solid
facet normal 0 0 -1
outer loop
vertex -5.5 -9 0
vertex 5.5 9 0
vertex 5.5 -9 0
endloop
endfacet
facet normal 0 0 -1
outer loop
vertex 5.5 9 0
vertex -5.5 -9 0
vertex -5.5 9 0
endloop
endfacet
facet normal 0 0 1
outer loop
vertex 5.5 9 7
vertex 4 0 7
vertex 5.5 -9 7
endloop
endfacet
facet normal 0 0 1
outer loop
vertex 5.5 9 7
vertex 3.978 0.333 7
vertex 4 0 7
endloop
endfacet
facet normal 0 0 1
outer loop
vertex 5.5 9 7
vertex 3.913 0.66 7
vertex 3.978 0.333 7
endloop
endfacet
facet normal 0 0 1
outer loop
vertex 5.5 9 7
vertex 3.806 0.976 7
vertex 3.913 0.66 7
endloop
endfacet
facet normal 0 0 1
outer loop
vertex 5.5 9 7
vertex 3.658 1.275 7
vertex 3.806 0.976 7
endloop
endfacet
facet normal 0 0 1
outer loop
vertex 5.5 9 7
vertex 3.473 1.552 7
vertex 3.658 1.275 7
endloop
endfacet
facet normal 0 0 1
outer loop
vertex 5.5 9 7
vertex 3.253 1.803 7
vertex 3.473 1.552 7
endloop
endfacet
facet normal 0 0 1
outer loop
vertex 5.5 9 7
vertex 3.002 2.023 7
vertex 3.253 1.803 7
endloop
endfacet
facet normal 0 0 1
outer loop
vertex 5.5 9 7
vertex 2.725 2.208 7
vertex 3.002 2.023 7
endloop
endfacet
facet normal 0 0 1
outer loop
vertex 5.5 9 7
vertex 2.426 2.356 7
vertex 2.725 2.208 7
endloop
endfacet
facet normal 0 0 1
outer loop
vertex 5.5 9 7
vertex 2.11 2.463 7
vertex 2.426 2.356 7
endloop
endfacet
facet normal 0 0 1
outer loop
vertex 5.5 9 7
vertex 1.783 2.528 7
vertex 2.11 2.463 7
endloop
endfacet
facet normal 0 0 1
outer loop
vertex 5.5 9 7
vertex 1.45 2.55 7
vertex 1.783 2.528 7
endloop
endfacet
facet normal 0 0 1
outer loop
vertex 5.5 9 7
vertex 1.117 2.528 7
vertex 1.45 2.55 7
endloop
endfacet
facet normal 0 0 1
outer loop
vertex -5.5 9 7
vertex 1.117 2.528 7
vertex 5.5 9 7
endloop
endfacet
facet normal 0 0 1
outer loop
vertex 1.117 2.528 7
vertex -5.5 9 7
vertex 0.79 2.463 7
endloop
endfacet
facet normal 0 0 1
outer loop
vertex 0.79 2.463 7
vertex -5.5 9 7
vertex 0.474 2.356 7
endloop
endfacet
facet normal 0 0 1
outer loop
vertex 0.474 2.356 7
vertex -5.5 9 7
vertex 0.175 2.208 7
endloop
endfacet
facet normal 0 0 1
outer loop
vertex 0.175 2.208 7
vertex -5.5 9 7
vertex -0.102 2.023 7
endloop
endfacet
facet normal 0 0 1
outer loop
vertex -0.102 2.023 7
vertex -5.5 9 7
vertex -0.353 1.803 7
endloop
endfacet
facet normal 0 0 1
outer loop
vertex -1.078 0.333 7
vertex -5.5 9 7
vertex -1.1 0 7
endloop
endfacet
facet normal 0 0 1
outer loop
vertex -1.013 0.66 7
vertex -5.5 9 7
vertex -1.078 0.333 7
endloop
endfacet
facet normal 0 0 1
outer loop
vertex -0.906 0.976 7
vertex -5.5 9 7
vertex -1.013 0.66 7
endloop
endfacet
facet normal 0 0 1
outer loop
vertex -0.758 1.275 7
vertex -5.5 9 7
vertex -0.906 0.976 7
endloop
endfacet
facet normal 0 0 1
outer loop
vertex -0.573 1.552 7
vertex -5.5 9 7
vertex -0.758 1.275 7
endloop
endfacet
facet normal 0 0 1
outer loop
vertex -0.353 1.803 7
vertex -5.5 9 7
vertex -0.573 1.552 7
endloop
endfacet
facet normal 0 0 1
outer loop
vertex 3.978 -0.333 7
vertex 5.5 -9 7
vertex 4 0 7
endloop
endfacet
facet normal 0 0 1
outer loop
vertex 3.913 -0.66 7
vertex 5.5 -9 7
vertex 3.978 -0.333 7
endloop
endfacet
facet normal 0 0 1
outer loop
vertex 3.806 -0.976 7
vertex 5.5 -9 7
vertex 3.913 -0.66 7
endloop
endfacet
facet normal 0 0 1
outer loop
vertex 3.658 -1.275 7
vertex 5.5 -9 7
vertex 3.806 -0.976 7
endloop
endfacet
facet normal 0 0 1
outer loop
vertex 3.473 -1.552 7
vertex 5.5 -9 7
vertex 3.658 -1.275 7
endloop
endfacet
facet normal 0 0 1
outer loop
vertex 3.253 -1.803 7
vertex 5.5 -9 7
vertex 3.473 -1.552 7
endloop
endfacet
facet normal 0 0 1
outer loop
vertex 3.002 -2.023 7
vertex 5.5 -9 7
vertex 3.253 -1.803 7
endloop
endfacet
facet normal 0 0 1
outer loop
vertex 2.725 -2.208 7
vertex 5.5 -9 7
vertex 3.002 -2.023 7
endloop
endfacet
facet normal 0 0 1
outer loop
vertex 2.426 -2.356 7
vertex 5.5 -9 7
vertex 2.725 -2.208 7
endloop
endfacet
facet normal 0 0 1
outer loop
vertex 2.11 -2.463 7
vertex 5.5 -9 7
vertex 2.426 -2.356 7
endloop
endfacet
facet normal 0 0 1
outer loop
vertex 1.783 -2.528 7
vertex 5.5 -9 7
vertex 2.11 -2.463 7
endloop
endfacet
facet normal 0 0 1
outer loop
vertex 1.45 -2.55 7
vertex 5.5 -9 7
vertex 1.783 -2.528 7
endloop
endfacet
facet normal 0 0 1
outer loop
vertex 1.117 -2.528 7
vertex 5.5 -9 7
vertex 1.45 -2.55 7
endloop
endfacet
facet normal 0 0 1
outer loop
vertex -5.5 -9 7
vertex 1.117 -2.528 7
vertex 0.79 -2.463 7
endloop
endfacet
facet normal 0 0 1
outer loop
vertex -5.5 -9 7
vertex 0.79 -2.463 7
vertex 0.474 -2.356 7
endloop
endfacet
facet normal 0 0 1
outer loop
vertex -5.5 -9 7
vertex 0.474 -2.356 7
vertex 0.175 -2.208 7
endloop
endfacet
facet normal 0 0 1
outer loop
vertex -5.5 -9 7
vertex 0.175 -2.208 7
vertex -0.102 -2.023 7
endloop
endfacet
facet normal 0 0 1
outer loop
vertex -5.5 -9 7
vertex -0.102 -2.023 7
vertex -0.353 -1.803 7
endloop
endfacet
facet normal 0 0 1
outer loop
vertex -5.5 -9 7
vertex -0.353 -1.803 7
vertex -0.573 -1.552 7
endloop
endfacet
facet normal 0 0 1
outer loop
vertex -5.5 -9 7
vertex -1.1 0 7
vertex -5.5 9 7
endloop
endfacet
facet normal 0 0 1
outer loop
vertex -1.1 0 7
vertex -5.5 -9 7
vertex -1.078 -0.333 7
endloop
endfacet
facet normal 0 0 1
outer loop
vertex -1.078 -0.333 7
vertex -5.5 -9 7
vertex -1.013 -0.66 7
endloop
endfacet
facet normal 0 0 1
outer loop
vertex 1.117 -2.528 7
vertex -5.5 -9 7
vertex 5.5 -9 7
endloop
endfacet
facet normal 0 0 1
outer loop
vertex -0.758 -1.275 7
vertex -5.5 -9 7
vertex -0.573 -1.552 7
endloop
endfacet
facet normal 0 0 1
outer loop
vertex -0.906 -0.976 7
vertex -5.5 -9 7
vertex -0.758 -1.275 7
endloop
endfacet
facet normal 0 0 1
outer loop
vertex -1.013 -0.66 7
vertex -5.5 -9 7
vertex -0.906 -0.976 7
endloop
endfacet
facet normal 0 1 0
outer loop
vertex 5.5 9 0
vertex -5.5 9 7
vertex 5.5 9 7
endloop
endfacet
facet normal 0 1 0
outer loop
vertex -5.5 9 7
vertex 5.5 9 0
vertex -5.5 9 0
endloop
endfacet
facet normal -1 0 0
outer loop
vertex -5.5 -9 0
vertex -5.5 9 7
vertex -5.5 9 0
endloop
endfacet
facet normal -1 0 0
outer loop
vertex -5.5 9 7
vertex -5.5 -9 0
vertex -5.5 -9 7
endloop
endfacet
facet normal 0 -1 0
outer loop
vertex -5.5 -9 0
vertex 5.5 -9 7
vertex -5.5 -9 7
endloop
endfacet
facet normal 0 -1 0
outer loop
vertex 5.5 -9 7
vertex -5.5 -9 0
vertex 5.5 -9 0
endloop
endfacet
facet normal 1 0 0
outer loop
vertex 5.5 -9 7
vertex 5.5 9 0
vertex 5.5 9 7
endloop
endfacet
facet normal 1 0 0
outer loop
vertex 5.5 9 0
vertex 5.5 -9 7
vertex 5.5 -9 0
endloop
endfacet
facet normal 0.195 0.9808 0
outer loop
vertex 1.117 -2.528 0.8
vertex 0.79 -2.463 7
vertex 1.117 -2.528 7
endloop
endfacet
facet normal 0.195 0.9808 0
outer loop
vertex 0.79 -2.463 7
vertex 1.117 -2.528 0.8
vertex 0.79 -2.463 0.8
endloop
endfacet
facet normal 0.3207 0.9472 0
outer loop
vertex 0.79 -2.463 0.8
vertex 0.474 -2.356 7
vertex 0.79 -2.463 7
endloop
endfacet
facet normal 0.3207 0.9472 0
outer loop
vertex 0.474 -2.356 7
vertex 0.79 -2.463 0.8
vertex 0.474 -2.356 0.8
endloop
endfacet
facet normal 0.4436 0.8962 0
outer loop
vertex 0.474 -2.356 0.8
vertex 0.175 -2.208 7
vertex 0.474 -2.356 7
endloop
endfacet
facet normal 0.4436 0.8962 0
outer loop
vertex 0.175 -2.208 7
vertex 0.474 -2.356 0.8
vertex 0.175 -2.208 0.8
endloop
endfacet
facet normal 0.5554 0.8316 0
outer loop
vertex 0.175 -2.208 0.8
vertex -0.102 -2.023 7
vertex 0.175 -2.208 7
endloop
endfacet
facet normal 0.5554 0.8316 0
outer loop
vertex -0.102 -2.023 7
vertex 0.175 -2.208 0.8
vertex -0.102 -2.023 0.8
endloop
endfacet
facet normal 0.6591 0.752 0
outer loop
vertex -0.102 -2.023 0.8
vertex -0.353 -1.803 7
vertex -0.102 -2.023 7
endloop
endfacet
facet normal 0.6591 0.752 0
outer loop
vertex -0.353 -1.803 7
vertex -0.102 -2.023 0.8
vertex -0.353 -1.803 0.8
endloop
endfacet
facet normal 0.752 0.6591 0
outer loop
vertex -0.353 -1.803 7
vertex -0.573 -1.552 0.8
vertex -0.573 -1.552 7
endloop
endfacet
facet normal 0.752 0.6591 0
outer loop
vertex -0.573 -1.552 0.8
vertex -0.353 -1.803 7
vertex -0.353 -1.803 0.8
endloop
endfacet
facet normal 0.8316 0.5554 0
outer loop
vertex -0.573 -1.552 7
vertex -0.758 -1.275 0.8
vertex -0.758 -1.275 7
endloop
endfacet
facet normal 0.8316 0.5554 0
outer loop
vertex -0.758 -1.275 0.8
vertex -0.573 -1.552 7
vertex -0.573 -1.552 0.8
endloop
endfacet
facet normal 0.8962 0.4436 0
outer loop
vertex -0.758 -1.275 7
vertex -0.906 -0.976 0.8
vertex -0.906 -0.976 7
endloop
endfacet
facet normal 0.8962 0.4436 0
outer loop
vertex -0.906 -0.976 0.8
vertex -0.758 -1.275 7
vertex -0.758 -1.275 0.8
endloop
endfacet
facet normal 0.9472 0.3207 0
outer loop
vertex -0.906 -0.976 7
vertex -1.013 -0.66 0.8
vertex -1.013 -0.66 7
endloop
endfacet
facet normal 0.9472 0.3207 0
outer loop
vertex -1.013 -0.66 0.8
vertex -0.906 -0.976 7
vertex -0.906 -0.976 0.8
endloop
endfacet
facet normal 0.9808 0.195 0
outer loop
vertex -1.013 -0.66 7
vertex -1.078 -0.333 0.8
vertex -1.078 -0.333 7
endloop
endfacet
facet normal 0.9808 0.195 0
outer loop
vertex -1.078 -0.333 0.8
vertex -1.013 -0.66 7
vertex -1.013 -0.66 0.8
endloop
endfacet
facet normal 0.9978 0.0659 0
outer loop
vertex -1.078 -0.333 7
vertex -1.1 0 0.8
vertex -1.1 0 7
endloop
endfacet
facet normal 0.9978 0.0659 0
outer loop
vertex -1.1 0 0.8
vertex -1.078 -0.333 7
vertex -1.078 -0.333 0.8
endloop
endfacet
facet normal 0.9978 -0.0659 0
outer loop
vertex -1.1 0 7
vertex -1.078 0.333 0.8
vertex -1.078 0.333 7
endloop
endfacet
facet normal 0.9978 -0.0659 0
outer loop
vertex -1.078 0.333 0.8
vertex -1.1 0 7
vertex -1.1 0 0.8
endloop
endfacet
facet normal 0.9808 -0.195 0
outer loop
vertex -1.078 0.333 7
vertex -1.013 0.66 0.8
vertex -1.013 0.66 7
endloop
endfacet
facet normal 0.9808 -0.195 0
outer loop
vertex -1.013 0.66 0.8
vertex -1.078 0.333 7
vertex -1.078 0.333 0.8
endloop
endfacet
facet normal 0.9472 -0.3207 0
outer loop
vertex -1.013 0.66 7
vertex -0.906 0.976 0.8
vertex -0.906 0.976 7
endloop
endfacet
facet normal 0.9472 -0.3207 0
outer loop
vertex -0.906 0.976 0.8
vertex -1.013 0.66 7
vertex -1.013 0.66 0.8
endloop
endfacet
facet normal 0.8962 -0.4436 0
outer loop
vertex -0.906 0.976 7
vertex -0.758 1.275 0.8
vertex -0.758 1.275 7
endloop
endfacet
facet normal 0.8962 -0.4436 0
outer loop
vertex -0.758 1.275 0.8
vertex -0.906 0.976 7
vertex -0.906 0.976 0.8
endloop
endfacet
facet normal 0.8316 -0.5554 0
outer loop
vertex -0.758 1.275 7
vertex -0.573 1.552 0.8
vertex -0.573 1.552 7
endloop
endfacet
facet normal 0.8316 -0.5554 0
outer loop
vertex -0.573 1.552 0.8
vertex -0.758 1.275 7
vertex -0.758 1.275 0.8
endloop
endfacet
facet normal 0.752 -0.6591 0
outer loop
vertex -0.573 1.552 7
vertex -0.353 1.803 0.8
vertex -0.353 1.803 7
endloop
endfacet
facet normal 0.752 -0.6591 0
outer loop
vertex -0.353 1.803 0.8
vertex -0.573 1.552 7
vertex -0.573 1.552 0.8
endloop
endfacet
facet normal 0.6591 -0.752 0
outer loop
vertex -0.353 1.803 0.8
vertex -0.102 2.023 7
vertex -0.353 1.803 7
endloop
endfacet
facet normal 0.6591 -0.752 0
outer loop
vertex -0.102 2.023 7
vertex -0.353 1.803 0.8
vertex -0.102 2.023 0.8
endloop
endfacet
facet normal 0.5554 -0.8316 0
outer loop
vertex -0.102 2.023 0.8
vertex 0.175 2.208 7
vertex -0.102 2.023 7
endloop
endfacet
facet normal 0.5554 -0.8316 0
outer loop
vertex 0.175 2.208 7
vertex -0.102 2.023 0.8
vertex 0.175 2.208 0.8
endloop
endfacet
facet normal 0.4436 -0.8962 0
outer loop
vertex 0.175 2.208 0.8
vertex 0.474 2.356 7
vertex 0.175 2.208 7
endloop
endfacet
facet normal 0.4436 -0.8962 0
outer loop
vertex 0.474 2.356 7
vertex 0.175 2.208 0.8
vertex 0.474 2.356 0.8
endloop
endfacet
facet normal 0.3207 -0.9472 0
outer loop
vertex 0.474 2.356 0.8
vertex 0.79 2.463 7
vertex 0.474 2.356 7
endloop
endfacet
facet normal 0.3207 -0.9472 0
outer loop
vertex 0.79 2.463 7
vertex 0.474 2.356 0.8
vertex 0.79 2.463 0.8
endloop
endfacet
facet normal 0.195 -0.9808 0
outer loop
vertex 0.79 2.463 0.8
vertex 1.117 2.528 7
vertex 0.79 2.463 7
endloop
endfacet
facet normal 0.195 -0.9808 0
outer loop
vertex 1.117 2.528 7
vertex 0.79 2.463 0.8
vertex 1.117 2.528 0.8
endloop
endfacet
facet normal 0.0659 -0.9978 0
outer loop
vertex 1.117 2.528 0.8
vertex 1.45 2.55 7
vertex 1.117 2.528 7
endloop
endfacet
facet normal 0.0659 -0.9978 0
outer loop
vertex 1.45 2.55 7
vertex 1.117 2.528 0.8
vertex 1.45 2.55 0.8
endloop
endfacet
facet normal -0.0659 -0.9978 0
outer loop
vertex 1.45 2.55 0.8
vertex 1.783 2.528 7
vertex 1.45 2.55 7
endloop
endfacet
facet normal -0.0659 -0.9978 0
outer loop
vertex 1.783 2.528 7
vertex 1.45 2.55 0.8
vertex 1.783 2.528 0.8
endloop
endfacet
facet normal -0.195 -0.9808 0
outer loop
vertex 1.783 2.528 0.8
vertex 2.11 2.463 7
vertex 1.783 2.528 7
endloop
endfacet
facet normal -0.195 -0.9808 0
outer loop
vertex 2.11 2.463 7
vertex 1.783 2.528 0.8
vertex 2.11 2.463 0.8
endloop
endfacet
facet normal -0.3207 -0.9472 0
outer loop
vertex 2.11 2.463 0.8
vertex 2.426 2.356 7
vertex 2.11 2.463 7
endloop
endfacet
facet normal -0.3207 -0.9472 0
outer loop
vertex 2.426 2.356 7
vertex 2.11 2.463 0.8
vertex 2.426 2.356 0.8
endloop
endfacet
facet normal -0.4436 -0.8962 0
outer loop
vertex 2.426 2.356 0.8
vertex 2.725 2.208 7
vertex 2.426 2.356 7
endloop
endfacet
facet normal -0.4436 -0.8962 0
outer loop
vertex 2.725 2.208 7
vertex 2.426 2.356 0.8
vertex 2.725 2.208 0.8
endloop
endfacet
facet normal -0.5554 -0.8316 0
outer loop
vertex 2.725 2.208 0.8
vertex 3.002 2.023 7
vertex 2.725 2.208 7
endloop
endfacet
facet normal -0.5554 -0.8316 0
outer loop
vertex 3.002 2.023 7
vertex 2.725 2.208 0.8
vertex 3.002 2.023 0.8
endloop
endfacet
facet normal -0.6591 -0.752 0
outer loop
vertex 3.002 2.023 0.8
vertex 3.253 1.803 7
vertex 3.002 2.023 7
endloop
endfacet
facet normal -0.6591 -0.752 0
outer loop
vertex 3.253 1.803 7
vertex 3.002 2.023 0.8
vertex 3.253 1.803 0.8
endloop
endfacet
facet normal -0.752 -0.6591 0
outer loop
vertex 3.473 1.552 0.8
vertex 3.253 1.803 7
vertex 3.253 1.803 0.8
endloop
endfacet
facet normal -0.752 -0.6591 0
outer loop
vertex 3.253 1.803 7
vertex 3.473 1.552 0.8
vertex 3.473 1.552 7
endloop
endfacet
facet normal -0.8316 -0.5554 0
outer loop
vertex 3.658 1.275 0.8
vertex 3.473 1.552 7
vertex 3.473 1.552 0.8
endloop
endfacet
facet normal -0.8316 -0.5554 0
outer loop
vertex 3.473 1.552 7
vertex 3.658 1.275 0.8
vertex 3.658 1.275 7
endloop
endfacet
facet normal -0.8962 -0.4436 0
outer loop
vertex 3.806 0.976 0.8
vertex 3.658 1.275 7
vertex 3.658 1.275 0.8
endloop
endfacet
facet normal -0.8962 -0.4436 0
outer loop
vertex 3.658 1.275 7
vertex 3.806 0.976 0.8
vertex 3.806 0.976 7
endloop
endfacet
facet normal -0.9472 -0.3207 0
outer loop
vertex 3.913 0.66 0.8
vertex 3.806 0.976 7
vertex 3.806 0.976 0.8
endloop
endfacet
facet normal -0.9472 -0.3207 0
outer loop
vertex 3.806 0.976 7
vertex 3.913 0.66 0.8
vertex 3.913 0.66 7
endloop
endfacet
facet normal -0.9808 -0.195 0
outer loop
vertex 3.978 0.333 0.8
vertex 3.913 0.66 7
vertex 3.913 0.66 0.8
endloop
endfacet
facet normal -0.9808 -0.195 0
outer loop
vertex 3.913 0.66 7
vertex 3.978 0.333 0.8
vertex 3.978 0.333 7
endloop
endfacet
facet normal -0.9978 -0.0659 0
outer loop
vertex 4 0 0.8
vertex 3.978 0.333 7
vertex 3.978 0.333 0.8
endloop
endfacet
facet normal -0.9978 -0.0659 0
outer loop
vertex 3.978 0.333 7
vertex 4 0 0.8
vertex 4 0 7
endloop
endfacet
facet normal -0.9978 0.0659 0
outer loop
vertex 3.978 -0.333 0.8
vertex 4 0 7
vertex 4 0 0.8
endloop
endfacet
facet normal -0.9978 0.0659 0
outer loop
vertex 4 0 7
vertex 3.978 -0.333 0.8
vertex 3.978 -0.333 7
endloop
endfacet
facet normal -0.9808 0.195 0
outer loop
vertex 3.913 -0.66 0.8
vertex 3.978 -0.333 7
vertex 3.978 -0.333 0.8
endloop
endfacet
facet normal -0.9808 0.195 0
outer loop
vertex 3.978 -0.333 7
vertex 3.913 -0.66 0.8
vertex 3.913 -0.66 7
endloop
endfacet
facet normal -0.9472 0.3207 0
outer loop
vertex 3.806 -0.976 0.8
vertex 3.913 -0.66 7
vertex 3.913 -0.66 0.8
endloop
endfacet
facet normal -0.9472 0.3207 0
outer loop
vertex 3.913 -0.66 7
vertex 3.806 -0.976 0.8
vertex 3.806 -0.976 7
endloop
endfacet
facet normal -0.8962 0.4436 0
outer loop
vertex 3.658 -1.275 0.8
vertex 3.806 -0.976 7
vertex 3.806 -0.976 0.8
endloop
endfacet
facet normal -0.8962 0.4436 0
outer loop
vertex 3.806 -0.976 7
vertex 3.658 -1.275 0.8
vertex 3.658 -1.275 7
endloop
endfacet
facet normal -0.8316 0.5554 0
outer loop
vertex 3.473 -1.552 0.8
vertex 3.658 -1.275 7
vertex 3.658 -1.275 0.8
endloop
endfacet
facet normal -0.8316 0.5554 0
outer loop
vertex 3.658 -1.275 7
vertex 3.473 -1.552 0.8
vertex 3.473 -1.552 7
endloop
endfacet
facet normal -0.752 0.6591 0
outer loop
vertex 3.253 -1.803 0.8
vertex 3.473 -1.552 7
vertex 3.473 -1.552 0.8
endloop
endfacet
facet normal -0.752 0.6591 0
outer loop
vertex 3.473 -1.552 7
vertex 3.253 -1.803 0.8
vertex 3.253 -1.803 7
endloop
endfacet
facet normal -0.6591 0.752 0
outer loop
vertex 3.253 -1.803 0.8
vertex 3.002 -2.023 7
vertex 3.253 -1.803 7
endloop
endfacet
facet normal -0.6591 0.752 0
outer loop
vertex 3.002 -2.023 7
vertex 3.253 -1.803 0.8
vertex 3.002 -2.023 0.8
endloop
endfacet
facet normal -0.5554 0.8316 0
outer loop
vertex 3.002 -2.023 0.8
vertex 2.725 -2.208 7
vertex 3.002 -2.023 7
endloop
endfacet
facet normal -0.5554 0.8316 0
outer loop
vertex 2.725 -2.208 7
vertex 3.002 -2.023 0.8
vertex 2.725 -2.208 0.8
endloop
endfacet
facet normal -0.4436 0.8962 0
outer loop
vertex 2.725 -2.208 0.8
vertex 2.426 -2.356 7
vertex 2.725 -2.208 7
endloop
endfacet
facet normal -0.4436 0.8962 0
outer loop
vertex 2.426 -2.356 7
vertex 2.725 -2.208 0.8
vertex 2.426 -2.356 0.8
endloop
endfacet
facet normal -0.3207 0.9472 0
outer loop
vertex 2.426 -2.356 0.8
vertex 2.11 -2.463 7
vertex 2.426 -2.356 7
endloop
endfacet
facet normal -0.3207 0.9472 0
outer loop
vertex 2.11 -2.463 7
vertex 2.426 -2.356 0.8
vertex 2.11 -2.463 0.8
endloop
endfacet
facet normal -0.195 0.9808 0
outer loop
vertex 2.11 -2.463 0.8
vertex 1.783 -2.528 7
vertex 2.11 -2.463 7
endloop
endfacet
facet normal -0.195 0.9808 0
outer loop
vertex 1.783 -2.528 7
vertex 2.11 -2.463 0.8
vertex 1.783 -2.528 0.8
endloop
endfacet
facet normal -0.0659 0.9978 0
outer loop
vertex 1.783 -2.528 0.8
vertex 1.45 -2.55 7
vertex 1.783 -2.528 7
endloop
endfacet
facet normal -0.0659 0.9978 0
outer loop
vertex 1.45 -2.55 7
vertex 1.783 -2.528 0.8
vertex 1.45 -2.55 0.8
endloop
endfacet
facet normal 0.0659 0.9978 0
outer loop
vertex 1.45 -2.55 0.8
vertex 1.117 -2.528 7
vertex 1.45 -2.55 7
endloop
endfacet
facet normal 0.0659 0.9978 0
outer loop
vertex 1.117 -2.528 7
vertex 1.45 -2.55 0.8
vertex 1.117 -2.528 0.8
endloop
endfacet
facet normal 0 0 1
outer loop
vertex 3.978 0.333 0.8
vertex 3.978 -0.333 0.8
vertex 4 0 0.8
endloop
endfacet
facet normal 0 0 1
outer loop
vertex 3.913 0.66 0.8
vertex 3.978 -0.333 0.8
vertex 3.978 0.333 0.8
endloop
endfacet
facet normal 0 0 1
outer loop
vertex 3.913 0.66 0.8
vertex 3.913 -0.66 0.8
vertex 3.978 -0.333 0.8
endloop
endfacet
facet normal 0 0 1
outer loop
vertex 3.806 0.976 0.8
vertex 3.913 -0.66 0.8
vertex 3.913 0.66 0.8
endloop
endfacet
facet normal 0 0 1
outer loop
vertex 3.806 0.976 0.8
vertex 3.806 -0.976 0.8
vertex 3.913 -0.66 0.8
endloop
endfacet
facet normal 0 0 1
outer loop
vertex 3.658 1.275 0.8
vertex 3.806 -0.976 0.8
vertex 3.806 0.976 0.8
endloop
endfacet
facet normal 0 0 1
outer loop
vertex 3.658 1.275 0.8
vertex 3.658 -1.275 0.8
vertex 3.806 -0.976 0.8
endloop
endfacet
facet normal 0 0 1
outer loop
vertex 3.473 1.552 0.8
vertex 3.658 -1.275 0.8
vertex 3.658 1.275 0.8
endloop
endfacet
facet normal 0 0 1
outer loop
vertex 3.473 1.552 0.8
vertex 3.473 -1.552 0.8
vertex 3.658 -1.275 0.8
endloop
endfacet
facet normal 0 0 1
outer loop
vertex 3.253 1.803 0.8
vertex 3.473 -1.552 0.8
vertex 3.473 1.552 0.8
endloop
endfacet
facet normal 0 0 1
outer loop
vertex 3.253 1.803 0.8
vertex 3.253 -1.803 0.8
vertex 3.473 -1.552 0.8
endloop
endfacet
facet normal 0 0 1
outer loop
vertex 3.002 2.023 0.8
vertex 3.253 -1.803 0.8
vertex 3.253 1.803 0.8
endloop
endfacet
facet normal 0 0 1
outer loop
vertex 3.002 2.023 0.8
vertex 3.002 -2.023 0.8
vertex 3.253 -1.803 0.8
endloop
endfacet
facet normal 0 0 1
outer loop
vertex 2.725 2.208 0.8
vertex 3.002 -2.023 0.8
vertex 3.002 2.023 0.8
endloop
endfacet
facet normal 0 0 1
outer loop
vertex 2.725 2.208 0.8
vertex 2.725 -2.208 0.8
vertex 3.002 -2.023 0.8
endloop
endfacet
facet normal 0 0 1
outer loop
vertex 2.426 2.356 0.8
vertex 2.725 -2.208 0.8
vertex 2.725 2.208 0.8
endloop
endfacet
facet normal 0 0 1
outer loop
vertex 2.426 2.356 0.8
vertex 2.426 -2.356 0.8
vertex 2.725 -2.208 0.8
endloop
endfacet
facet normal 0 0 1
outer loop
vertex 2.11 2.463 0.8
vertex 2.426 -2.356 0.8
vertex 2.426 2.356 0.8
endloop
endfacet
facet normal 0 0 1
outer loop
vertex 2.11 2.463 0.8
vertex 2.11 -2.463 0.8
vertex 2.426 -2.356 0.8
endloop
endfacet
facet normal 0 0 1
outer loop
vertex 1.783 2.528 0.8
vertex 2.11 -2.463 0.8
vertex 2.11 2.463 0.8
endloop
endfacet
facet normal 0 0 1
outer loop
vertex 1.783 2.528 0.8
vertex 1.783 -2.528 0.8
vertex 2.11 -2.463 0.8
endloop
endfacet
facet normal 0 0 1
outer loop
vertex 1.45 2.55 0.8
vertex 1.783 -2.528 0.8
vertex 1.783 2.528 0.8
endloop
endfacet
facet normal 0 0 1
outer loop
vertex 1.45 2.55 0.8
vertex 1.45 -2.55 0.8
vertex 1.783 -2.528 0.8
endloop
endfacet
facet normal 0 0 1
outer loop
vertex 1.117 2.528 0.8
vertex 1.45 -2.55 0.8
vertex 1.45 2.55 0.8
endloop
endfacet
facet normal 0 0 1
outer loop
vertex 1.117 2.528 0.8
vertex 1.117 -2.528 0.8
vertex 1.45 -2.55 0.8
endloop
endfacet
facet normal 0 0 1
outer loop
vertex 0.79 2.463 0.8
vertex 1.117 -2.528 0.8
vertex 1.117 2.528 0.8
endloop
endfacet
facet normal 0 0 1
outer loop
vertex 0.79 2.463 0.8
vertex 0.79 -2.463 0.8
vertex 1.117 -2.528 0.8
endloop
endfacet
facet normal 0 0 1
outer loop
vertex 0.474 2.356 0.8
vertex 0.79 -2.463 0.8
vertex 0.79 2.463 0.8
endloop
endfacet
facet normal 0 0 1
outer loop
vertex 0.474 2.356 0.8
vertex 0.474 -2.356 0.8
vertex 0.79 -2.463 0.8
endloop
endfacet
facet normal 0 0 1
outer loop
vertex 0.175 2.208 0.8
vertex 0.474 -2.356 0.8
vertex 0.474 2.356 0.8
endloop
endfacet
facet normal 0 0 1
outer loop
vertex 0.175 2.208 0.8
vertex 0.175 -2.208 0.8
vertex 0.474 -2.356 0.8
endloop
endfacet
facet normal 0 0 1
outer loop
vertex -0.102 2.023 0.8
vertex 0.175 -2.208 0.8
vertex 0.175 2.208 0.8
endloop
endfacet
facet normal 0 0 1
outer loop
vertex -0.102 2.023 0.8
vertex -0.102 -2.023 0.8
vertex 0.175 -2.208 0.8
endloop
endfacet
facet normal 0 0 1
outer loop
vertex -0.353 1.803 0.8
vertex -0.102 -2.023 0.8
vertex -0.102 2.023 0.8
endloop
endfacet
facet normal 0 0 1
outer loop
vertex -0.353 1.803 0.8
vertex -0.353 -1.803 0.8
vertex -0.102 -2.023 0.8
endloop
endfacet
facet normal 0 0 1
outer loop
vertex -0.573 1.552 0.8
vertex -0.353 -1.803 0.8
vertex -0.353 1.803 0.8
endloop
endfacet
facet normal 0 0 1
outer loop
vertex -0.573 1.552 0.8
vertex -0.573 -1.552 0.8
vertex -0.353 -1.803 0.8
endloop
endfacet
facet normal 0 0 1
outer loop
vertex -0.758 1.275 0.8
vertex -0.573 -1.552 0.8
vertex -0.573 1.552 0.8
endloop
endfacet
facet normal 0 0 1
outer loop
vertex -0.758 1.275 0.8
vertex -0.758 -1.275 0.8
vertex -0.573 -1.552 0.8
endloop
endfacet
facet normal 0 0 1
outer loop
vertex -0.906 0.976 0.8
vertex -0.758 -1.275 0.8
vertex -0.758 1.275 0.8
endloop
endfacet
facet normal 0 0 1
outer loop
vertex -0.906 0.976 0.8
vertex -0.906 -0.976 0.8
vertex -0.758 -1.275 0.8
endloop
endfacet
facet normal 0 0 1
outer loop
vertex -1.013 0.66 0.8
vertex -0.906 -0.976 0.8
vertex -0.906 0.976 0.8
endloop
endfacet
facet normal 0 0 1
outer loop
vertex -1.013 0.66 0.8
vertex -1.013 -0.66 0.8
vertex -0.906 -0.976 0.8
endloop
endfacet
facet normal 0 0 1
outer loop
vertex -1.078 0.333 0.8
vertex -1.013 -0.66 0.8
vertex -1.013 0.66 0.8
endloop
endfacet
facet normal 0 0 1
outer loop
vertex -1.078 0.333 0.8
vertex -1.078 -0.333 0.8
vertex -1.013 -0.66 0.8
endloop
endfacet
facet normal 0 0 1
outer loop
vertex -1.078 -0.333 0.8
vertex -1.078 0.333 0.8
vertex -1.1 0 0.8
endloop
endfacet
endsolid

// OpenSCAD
q=48;
$fn=q;


mg=5.1;
w1=2.9;


linear_extrude(7)
difference(){
    square([mg+3+w1,18],true);
    translate([w1/2,0])
    circle(d=mg);
}
linear_extrude(.8)
square([mg+3+w1,18],true);
